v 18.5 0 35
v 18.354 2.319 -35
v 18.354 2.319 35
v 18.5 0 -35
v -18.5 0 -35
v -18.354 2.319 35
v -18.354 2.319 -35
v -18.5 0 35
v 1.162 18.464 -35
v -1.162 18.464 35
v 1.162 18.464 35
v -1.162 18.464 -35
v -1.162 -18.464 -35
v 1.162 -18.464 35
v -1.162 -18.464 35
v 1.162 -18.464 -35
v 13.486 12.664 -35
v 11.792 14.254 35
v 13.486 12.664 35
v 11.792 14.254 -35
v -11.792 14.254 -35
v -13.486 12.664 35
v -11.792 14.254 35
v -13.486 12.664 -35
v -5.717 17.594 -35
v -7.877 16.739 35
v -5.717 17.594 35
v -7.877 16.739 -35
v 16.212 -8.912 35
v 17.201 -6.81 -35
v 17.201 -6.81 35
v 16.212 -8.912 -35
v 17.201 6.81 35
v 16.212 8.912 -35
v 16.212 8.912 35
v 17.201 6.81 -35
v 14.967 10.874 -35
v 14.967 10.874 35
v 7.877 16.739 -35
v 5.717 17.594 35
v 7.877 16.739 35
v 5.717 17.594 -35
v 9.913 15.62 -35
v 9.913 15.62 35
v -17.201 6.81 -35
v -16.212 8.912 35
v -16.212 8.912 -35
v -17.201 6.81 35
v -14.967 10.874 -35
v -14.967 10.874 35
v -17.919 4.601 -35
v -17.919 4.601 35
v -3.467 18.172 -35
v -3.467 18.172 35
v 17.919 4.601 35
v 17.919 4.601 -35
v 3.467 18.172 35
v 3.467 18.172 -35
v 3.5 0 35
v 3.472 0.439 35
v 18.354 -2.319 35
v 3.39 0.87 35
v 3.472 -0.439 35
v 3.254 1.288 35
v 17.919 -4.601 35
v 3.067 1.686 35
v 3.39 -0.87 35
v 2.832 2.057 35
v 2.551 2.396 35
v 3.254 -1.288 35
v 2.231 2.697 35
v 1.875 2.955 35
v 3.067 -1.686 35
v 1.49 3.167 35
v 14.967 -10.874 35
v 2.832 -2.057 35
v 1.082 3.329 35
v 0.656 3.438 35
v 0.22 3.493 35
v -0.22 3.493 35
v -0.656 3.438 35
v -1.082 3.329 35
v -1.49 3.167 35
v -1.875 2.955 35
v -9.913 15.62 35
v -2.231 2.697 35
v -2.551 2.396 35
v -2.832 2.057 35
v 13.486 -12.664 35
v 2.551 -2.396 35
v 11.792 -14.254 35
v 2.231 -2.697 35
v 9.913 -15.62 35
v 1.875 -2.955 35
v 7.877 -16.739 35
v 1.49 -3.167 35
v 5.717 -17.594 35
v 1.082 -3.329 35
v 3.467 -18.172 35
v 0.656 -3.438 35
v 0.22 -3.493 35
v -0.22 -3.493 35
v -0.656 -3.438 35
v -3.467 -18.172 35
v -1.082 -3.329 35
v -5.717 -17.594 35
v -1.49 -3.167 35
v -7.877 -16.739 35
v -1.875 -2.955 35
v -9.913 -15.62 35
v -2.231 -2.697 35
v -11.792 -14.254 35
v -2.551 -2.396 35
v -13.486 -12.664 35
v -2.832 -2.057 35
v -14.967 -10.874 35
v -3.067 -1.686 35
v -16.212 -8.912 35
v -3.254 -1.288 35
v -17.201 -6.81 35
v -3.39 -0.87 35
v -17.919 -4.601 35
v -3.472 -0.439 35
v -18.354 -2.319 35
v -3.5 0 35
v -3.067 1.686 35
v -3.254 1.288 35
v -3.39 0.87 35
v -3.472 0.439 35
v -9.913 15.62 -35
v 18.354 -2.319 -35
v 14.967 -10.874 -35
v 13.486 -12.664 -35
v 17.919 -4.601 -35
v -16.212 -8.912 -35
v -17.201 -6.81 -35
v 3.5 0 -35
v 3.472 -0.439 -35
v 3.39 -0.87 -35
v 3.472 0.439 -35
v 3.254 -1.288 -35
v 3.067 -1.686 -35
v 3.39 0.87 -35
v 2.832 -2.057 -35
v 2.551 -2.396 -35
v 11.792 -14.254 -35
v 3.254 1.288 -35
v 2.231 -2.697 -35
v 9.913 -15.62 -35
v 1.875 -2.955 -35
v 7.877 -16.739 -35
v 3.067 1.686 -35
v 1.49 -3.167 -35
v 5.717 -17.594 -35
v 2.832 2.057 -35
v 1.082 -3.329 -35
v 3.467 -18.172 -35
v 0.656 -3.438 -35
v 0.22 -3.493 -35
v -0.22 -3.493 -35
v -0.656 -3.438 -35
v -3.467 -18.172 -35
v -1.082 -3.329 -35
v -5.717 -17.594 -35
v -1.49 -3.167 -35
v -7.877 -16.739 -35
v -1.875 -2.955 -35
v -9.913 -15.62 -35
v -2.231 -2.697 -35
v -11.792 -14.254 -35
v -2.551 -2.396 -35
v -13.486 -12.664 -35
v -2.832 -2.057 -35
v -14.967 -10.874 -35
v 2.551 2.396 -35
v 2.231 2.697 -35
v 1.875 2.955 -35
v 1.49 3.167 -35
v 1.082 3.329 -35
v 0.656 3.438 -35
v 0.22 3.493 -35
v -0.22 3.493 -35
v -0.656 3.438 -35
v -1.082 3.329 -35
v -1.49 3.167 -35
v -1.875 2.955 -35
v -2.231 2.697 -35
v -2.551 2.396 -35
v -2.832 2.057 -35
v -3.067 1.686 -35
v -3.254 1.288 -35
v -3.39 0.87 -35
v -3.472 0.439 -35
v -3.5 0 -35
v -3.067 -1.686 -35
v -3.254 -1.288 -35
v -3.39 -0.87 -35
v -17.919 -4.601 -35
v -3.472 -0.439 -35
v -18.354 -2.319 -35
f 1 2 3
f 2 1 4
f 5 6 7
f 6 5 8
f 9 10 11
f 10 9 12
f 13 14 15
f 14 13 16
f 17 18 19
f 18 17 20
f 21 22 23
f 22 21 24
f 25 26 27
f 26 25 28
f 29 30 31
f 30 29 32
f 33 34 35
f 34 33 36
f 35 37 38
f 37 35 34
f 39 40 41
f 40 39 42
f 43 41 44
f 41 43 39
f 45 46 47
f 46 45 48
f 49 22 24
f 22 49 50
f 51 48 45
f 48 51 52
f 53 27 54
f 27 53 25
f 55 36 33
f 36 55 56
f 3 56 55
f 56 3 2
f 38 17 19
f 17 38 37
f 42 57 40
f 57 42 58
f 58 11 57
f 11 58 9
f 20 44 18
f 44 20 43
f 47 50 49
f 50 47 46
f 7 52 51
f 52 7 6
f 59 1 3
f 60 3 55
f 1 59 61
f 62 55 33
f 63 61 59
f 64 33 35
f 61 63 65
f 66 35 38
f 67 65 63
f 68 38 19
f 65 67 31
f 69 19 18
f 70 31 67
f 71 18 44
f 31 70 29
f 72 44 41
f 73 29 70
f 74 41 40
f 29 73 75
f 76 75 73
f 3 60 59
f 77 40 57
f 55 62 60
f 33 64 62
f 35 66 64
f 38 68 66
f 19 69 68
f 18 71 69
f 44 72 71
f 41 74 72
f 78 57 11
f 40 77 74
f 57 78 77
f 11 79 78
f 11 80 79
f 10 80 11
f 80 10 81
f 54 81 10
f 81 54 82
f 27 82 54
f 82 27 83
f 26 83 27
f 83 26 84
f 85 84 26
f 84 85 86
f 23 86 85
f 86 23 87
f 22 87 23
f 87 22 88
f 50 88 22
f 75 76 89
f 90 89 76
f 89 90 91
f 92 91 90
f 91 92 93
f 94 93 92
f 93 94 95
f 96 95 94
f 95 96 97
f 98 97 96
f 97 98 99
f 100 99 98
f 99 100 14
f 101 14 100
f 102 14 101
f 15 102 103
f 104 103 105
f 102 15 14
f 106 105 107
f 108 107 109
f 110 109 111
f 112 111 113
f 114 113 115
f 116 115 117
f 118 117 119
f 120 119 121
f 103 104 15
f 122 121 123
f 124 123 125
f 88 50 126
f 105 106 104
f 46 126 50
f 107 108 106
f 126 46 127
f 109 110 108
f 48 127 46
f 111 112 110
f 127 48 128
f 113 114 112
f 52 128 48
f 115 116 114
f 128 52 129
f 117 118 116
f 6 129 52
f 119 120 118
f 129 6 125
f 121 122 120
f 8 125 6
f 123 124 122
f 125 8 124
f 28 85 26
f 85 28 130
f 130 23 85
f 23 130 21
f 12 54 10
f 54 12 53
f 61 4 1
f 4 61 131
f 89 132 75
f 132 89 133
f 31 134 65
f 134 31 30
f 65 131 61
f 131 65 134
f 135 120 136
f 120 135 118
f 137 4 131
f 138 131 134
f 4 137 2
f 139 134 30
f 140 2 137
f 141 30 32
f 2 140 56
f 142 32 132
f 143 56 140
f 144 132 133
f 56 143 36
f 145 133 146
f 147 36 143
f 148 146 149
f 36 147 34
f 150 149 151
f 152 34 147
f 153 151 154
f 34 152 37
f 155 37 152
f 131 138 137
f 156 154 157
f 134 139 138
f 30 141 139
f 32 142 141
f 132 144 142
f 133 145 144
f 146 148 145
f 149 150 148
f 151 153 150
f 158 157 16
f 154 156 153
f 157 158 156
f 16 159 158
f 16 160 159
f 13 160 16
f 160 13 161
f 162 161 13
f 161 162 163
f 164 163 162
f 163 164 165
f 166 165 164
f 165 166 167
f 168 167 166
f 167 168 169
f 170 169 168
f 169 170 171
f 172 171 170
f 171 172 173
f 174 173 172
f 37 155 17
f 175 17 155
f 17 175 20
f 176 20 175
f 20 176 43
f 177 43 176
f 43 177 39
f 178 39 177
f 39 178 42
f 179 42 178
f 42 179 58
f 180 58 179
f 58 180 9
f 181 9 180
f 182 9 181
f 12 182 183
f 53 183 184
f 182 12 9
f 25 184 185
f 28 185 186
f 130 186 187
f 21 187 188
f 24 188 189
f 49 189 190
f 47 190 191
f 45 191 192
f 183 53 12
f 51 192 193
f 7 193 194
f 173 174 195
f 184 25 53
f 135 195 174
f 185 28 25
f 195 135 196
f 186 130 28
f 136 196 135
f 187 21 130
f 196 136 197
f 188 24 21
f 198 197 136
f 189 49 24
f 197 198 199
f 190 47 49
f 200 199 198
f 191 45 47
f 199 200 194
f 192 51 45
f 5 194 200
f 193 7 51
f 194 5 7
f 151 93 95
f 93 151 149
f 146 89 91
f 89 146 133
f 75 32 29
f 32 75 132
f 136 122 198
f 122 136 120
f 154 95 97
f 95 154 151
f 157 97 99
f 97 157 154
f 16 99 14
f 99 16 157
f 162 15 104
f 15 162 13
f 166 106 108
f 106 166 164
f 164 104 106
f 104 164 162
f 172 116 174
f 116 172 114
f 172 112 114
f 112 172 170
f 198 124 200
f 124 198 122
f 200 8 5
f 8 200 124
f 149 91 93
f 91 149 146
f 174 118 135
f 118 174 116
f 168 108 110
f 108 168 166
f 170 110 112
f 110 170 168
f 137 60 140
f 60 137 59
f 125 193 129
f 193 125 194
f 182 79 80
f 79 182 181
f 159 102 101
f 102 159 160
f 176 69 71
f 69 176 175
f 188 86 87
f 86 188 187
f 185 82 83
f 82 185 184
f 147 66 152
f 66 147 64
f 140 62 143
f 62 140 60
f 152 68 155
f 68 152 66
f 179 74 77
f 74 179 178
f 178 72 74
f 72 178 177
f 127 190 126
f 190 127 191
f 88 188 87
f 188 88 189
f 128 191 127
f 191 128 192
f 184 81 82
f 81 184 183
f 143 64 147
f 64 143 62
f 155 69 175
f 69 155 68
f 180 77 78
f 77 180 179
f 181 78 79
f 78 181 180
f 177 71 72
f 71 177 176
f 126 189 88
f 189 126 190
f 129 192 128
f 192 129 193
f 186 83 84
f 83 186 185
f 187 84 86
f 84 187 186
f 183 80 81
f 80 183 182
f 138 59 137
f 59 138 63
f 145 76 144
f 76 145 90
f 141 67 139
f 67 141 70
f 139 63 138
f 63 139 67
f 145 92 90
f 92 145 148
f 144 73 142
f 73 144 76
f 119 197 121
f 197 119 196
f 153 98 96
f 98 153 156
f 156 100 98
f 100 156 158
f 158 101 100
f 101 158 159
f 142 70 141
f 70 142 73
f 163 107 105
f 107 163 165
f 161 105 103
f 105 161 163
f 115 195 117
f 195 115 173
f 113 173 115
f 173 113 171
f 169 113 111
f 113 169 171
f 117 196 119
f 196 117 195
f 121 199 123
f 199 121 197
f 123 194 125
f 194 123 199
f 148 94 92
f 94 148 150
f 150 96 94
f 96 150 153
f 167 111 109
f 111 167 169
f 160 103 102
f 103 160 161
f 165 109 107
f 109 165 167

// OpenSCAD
$fn = 50;


difference() {
	union() {
		translate(v = [0, 0, -35.0000000000]) {
			cylinder(h = 70, r = 18.5000000000);
		}
	}
	union() {
		translate(v = [0, 0, -100.0000000000]) {
			cylinder(h = 200, r = 3.5000000000);
		}
	}
}
